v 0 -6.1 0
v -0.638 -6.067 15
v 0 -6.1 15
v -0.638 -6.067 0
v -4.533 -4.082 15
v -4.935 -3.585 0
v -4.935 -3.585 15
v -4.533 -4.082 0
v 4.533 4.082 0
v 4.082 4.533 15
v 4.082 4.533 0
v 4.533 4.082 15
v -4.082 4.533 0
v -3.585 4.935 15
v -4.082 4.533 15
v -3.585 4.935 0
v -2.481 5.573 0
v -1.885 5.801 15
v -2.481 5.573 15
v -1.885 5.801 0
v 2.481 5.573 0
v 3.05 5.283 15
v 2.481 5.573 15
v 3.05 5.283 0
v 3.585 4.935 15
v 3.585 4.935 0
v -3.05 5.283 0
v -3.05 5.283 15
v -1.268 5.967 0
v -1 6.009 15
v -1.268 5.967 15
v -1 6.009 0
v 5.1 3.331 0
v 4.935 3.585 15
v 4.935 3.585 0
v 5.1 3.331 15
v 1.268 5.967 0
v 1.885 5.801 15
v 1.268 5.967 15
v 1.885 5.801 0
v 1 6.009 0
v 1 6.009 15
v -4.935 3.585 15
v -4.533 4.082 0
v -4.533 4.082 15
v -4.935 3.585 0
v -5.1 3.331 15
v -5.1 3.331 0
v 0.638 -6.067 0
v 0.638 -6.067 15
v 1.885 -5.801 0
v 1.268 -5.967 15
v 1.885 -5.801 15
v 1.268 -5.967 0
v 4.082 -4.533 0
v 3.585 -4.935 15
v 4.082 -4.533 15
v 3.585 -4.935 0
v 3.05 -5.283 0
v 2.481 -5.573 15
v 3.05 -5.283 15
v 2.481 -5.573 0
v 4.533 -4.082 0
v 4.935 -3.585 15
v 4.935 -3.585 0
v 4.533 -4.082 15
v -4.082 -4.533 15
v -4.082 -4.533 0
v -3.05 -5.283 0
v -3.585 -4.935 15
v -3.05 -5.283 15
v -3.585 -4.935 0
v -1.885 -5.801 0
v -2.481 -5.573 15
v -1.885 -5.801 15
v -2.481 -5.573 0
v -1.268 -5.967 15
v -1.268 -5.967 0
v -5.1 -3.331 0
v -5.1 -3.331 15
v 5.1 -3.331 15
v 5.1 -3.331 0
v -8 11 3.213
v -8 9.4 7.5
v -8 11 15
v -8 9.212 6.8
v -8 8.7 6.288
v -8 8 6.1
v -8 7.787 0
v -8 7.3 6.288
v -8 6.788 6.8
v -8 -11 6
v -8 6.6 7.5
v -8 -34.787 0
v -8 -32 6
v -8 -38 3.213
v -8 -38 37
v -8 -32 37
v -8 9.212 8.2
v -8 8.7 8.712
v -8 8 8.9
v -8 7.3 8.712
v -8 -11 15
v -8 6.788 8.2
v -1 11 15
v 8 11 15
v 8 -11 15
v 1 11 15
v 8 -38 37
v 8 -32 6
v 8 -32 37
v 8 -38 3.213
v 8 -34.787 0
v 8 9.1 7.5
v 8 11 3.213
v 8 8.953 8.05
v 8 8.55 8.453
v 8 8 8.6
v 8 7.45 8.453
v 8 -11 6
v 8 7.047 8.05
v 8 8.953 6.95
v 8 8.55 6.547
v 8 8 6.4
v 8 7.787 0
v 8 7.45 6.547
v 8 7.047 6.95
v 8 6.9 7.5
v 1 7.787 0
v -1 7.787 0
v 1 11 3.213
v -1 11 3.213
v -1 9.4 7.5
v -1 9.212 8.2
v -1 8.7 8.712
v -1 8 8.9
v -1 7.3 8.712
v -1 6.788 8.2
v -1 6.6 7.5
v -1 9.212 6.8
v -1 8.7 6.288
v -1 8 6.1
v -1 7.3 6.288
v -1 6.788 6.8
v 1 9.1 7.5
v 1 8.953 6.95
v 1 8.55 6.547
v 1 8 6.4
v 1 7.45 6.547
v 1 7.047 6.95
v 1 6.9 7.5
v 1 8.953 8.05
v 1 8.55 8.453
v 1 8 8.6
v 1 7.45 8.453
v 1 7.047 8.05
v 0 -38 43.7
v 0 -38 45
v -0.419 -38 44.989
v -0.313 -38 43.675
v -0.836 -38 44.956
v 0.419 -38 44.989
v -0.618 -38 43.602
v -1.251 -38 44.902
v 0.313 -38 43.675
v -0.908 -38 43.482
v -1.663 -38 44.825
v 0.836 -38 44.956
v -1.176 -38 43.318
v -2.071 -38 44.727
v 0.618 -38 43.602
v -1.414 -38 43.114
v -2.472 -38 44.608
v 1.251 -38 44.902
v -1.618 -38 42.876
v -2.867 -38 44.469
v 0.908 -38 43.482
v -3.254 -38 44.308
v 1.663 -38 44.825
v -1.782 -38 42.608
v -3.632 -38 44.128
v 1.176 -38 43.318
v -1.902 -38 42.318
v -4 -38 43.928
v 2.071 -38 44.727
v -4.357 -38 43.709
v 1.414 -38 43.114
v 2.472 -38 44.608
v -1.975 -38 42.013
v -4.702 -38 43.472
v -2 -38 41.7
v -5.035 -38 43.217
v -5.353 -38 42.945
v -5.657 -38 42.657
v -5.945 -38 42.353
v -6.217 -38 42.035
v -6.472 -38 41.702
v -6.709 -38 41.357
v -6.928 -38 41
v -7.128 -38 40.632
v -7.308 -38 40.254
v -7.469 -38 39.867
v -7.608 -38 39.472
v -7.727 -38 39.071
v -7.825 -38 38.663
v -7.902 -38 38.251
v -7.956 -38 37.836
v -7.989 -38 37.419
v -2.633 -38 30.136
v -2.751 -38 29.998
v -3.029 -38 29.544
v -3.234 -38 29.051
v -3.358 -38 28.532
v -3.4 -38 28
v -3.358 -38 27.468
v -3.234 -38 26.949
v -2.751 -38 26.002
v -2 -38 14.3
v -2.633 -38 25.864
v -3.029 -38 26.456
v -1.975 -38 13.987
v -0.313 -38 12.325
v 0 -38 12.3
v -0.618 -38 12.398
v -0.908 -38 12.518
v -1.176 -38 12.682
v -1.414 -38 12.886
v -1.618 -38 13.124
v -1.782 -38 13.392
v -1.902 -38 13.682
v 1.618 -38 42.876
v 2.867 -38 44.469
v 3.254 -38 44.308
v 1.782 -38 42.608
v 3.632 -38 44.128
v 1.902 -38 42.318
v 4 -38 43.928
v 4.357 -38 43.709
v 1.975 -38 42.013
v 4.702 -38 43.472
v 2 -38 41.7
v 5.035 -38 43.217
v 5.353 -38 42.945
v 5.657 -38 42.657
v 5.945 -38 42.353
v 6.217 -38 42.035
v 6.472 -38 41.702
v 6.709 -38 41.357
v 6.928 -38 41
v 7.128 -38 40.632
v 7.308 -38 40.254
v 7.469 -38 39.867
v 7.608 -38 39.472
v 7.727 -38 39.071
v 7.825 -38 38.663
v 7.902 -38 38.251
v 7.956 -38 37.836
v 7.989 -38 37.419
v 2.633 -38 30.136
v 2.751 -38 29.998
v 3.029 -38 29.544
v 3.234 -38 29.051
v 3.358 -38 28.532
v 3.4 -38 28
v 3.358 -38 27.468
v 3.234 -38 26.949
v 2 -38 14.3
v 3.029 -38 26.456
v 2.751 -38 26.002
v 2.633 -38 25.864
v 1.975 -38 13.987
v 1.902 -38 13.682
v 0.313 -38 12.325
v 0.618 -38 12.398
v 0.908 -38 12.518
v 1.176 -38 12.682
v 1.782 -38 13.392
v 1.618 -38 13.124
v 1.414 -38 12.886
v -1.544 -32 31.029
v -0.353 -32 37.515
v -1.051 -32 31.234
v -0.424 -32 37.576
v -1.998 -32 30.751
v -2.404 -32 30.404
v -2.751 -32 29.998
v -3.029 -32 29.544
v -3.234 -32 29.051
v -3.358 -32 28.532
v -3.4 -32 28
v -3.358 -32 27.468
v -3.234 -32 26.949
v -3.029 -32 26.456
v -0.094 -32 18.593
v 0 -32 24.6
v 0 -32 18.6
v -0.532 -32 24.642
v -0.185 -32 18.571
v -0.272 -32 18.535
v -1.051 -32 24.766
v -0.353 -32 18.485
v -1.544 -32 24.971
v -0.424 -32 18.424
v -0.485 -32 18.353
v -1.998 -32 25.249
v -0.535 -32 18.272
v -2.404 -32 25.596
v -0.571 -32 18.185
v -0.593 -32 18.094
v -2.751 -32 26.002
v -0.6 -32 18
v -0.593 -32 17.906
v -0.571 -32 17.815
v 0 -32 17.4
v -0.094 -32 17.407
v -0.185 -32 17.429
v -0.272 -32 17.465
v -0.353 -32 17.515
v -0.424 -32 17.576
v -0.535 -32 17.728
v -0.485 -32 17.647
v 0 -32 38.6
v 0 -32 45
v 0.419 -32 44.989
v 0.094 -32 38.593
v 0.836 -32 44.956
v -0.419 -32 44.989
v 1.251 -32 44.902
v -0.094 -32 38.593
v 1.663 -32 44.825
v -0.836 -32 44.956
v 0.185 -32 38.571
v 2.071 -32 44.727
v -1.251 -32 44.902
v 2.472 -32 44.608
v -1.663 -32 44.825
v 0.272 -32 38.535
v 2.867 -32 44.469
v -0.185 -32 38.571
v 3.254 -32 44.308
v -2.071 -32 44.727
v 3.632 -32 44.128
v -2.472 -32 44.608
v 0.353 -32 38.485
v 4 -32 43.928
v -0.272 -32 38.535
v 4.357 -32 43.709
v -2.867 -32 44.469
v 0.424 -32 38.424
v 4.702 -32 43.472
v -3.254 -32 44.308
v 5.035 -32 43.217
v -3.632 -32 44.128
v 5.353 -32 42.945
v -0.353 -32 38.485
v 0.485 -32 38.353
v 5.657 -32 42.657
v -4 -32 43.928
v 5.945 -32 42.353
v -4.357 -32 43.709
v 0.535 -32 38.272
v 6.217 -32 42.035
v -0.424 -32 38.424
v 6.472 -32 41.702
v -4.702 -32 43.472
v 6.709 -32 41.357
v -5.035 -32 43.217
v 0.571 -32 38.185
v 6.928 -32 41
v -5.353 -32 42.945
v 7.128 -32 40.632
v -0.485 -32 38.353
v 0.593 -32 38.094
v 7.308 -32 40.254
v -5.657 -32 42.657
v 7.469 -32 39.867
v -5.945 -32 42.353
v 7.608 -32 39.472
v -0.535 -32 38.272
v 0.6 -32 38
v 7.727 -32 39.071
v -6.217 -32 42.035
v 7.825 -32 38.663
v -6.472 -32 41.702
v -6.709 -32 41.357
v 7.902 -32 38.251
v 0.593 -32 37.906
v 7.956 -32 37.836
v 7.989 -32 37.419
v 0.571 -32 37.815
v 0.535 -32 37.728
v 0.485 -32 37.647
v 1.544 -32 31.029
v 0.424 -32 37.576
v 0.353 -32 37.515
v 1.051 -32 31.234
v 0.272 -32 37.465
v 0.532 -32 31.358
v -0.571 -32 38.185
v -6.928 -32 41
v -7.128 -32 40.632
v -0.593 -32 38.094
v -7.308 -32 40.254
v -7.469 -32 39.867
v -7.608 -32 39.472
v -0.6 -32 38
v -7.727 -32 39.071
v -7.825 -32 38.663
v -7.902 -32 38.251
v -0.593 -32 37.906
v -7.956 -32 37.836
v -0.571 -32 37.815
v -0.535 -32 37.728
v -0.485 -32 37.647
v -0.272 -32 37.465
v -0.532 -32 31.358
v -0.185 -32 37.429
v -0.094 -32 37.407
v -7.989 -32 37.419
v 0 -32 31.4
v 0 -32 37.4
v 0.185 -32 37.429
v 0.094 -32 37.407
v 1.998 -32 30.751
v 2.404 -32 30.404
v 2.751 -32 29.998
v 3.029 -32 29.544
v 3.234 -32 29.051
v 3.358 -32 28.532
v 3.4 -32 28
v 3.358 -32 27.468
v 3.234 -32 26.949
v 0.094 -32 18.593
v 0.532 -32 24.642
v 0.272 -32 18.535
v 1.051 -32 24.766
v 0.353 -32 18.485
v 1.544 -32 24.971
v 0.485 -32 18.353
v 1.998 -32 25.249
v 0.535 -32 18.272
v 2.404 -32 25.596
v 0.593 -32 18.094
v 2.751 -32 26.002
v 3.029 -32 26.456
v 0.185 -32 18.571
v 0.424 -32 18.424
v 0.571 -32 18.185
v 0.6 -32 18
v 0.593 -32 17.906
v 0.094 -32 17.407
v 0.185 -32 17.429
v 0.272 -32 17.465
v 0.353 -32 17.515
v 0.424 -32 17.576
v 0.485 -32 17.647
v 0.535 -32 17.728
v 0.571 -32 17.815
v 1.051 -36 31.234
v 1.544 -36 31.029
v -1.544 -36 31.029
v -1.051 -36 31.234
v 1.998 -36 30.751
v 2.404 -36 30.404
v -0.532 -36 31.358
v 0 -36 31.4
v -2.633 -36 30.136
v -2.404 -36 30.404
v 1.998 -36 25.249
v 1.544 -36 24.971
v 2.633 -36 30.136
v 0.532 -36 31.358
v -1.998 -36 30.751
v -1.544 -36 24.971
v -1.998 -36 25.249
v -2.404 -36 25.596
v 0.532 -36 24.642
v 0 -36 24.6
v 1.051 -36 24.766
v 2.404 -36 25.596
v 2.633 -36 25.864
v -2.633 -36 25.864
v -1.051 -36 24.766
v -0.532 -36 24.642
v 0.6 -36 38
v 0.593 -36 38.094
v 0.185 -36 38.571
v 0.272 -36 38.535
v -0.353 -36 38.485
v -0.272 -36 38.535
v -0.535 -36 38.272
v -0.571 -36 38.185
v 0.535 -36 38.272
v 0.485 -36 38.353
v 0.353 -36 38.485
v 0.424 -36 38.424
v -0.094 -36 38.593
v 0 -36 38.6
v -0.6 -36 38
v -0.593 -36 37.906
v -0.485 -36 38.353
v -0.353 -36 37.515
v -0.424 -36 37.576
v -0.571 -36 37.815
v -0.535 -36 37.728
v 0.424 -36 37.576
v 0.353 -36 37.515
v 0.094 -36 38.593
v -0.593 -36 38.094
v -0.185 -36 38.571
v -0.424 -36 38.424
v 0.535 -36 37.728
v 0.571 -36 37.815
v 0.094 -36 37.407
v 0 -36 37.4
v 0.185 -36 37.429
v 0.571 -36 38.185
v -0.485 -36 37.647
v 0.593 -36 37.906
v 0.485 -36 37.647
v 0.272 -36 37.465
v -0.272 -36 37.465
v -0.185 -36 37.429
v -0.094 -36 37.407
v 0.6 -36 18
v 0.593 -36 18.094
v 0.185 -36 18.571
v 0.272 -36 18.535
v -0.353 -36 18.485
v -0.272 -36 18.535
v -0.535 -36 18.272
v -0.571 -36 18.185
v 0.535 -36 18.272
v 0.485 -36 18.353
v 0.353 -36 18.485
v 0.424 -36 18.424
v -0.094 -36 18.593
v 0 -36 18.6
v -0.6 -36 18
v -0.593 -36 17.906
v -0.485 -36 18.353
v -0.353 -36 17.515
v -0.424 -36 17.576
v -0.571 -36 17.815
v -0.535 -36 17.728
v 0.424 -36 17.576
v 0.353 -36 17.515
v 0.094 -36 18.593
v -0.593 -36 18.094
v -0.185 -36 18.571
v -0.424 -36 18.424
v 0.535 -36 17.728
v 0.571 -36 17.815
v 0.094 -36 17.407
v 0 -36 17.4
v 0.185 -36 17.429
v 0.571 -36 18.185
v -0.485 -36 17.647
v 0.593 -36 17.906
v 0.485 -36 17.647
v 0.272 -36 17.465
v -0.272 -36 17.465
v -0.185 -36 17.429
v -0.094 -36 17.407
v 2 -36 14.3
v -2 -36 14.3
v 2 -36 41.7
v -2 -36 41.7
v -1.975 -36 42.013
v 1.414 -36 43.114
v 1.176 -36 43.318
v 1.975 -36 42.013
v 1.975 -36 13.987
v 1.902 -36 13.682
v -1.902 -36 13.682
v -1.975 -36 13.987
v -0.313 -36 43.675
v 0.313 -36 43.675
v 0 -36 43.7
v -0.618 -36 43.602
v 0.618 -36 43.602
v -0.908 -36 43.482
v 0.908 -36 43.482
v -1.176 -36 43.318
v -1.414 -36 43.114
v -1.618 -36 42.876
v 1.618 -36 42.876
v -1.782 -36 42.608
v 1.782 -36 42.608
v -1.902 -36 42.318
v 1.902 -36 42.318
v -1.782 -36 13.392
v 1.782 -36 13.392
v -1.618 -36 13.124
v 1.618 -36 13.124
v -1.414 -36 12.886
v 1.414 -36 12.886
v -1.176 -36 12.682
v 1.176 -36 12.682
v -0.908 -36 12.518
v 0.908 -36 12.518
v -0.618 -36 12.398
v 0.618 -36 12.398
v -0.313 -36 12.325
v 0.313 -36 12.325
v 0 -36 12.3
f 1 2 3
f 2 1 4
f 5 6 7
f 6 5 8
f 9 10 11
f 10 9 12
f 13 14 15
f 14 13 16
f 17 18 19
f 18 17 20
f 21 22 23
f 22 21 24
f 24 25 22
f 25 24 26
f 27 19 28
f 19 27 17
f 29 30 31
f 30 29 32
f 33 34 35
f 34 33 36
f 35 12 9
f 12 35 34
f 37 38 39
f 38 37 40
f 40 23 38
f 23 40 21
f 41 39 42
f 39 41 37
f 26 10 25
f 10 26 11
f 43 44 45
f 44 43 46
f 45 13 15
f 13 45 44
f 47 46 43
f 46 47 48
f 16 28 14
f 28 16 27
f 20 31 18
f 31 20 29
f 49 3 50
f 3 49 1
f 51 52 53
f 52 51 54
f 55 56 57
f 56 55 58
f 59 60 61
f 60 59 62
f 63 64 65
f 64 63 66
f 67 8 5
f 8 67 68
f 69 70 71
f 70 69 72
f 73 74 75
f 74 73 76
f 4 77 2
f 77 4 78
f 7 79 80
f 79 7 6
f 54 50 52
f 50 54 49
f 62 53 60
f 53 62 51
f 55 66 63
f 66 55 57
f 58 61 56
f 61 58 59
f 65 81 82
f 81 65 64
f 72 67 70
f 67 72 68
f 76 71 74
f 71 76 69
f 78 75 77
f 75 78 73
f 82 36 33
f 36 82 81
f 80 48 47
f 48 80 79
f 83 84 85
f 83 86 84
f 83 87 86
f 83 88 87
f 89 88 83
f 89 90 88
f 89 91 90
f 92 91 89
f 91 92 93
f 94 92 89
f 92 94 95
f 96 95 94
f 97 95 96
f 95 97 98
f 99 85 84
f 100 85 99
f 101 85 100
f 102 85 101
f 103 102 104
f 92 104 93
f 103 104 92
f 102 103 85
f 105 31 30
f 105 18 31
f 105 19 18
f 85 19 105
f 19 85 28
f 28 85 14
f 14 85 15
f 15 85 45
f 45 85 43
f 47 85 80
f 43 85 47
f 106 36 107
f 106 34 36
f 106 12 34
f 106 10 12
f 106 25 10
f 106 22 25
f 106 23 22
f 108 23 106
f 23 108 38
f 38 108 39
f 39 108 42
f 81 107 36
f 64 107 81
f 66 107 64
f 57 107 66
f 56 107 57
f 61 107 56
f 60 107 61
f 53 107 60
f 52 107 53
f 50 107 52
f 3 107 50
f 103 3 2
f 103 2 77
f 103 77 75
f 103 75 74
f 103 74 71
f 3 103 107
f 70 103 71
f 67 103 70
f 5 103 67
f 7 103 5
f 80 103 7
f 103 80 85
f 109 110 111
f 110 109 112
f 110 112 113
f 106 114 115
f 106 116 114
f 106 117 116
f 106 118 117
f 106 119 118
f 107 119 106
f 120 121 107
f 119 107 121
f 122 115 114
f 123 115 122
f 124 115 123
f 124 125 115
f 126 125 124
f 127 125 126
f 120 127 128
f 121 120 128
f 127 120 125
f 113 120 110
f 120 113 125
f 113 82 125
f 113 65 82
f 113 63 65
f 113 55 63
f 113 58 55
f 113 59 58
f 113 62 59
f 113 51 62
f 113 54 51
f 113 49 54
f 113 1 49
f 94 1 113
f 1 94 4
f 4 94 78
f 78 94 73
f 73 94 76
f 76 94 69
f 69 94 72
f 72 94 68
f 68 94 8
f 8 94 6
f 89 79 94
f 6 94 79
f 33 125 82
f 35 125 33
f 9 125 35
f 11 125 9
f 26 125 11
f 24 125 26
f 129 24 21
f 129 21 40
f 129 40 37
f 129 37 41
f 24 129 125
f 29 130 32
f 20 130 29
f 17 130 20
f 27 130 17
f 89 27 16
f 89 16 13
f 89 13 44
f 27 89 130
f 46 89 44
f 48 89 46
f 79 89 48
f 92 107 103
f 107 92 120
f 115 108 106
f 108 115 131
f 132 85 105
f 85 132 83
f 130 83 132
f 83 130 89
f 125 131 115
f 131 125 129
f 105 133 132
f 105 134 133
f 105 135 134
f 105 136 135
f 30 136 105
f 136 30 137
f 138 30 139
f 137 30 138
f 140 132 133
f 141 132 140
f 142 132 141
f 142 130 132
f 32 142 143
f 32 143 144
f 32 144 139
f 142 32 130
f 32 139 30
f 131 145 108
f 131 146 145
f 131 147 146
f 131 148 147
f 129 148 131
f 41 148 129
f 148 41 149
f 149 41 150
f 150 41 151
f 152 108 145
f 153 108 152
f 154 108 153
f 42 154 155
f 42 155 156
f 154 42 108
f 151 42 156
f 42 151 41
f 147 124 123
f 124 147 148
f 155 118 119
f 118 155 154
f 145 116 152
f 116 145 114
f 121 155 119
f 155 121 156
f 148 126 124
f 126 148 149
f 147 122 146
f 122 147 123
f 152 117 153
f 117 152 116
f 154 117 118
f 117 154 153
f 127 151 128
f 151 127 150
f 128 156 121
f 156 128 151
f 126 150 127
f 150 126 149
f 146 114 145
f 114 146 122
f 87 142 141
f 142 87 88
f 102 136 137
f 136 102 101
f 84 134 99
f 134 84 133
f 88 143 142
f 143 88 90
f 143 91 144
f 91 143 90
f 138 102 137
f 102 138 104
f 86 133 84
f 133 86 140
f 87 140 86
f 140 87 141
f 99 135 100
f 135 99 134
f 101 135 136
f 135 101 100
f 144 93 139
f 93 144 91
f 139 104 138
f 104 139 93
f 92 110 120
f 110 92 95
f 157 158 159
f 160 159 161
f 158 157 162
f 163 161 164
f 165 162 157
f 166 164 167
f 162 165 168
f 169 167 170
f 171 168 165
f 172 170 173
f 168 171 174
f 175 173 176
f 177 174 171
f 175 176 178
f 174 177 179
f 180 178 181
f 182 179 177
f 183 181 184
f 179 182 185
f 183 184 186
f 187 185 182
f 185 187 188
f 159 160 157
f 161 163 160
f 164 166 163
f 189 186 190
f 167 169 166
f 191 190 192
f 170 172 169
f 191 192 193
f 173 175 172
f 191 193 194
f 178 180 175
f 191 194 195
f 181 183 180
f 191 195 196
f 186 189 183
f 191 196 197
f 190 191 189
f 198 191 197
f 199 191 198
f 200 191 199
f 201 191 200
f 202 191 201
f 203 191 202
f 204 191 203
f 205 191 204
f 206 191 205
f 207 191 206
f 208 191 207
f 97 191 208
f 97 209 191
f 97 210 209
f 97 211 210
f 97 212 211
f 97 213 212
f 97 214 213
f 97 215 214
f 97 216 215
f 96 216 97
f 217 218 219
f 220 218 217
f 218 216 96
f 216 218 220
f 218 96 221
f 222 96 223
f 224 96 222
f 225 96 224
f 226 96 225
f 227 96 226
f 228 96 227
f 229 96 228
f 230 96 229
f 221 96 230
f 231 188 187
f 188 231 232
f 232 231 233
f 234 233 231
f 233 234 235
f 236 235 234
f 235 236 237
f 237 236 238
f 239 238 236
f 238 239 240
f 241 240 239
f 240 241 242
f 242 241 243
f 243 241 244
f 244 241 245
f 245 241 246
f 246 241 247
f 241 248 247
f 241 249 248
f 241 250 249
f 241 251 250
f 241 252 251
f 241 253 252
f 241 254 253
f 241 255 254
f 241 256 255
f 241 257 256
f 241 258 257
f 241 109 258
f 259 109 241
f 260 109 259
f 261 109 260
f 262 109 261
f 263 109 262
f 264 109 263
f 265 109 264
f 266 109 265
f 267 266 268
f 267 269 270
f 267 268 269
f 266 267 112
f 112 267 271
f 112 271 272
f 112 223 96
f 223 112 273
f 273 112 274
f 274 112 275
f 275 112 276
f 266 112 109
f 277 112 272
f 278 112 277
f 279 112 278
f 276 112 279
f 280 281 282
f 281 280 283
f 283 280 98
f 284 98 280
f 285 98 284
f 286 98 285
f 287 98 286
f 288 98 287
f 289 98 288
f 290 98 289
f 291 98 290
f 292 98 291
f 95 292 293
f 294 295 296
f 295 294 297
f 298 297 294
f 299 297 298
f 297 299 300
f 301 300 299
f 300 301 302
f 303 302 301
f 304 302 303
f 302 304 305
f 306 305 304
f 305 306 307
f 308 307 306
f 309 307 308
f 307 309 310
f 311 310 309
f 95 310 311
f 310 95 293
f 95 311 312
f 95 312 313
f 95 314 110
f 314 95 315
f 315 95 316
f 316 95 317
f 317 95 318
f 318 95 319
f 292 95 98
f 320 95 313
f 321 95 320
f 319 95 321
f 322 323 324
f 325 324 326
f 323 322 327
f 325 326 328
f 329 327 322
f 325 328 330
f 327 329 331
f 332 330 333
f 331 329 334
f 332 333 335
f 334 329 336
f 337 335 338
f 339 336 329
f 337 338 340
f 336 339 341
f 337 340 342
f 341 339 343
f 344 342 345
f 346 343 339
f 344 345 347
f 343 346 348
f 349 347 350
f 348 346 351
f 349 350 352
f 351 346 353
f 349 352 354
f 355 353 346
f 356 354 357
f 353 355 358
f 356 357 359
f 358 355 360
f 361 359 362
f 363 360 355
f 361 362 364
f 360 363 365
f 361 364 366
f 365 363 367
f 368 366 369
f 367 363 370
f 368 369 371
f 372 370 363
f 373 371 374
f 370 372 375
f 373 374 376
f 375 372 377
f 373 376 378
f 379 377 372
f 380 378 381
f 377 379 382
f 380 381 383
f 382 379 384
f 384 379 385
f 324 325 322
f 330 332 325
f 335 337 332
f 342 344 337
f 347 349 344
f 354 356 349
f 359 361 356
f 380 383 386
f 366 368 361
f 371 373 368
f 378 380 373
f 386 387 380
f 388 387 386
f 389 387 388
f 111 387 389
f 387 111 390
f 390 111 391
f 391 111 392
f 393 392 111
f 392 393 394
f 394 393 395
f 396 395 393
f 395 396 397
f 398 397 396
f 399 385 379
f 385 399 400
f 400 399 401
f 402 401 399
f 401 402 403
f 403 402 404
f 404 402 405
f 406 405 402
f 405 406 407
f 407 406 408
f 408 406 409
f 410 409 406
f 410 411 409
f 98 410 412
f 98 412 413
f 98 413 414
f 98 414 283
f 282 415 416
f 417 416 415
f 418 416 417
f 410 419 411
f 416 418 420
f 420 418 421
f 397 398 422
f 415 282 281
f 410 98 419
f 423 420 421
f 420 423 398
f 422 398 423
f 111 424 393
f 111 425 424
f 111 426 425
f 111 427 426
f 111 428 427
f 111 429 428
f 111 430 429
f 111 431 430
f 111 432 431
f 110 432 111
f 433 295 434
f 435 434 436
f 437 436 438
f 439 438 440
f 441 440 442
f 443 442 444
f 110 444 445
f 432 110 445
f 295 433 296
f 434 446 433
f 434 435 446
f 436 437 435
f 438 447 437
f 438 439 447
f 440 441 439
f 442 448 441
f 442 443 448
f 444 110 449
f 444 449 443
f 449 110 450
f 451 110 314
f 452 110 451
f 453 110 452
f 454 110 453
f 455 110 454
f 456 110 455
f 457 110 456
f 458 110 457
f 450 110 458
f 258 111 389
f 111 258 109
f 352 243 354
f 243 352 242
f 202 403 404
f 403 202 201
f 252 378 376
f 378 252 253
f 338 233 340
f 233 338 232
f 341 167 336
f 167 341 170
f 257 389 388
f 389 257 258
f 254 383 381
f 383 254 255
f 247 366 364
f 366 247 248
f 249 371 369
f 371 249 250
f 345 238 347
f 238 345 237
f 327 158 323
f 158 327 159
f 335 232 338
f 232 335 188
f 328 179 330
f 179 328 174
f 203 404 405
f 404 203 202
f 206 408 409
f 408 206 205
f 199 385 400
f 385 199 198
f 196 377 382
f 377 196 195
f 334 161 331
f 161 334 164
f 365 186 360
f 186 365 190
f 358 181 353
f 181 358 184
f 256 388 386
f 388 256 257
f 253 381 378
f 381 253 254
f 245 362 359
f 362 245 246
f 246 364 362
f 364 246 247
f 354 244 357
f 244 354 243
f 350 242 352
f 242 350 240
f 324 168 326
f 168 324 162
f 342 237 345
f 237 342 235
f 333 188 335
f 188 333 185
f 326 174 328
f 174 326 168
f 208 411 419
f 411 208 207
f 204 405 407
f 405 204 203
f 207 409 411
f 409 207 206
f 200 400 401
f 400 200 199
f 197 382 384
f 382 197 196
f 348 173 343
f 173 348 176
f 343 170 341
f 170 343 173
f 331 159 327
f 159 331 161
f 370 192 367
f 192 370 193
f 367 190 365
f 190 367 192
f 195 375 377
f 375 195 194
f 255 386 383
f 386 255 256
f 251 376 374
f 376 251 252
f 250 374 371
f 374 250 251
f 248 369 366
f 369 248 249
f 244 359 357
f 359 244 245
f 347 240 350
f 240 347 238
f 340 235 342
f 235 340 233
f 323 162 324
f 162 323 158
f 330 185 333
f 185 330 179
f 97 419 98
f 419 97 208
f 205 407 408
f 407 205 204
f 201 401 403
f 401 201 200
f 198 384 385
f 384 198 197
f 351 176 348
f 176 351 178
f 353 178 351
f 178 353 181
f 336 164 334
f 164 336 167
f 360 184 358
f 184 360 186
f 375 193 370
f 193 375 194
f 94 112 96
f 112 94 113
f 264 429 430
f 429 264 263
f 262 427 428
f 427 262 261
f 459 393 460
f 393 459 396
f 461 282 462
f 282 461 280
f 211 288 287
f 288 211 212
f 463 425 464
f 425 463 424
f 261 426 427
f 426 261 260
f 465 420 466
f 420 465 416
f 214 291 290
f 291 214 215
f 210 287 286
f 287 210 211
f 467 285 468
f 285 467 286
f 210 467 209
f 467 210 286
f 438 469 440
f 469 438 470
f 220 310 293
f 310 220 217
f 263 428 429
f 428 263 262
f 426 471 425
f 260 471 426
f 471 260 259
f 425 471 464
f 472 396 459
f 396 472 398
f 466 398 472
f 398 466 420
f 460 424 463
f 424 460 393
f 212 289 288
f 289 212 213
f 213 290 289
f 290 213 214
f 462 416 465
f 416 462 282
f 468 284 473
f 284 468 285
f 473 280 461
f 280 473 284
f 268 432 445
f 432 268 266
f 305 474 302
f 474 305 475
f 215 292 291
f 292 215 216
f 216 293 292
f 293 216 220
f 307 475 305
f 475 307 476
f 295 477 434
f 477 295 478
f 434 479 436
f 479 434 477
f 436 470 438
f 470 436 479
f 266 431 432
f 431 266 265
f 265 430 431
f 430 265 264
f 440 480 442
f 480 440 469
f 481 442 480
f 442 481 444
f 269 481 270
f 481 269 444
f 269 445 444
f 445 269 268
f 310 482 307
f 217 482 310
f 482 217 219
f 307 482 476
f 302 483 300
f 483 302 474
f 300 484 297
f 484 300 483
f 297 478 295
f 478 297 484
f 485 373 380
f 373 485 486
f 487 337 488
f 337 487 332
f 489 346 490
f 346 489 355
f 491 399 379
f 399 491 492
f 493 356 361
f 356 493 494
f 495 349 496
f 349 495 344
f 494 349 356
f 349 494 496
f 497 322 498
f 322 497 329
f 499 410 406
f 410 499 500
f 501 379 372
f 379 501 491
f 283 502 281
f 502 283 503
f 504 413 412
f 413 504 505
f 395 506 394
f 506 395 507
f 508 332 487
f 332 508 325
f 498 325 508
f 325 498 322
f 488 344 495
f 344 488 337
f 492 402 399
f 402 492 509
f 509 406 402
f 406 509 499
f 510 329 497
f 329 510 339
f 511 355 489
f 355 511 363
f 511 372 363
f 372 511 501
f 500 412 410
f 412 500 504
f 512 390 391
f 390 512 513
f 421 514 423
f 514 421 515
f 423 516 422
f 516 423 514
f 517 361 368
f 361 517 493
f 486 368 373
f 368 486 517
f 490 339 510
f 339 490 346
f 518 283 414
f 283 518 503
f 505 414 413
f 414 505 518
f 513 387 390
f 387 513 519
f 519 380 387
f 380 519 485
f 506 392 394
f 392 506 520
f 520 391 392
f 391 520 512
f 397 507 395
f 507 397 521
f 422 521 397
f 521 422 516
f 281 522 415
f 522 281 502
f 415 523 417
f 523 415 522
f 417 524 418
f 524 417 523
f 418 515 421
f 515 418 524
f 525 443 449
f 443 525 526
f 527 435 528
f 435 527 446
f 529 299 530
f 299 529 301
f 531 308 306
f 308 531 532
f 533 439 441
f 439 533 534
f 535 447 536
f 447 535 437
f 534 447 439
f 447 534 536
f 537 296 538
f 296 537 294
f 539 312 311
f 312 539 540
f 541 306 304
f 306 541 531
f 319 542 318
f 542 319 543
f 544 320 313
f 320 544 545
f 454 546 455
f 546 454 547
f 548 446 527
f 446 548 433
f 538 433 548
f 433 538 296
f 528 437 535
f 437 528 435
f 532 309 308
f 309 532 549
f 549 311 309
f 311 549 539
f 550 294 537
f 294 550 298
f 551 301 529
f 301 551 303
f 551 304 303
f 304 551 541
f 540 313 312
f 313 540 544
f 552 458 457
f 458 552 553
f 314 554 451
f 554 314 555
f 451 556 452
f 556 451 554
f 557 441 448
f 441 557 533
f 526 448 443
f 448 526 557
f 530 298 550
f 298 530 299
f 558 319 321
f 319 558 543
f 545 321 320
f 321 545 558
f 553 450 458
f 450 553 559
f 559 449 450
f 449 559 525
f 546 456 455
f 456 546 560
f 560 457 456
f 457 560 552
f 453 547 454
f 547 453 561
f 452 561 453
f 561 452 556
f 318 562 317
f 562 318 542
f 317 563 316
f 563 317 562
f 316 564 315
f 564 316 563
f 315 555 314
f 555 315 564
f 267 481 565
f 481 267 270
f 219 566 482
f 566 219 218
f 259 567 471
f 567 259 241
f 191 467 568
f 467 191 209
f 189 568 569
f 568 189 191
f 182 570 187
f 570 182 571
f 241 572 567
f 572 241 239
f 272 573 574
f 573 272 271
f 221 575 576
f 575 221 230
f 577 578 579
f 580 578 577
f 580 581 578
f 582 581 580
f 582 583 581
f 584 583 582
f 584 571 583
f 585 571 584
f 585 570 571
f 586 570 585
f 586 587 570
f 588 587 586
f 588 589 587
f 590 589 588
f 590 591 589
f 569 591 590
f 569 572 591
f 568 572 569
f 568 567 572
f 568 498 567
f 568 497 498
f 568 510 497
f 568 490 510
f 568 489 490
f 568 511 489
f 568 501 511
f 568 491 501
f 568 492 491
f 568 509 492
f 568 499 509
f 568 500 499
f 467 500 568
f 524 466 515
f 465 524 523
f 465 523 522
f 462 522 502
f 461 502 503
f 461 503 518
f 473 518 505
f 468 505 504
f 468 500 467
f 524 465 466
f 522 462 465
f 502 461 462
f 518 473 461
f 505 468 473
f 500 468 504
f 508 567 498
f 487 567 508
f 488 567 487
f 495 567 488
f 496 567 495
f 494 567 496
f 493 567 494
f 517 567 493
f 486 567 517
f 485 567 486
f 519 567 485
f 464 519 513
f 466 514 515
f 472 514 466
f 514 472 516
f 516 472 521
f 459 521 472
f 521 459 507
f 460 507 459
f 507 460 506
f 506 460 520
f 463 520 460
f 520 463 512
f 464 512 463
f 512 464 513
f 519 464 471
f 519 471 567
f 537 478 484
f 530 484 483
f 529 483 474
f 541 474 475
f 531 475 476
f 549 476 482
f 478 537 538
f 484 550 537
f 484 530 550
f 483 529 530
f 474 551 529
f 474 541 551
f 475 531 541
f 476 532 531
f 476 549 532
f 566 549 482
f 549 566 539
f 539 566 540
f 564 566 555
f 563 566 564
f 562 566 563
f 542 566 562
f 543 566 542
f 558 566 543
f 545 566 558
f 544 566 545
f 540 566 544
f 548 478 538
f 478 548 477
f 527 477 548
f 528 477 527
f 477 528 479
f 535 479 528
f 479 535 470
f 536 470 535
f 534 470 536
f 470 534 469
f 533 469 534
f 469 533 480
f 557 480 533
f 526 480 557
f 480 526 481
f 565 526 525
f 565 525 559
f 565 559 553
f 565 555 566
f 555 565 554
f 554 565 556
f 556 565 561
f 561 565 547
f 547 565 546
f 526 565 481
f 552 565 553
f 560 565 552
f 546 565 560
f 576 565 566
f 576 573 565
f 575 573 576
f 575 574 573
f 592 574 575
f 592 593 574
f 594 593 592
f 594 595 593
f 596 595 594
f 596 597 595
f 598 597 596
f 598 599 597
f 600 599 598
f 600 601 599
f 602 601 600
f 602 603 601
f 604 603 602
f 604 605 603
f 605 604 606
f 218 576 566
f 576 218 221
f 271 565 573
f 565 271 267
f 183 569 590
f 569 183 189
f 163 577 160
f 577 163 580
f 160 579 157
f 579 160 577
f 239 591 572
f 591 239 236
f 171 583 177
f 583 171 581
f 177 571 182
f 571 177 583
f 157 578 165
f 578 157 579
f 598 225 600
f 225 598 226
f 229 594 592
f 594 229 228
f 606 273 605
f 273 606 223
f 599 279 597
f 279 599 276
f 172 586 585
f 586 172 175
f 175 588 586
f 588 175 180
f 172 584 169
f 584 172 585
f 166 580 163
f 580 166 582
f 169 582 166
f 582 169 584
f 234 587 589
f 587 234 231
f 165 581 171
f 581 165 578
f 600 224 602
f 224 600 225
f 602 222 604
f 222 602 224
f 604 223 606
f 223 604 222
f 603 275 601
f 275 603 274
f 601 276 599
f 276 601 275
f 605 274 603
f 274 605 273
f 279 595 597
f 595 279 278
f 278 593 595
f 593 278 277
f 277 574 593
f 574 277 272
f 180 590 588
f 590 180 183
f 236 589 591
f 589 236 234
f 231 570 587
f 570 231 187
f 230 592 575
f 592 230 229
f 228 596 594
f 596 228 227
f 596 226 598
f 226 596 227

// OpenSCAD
difference(){
translate([-8,-11,0])cube([16,22,15]);
difference(){
    translate([0,0,-1])cylinder(d=12.2,h=25,$fn=60);
    translate([6.1,0,-1])cube([2,16,40],center=true);
    translate([-6.1,0,-1])cube([2,16,40],center=true);
}
translate([0,14,-15])rotate([45,0,0])cube(30,center=true);
translate([-1,0,-1])cube([2,22,25]);
translate([-9,8,7.5])rotate([0,90,0])
cylinder(d=2.2,h=21,$fn=12);
translate([-9,8,7.5])rotate([0,90,0])
cylinder(d=2.8,h=10,$fn=12);
}

difference(){
union(){
translate([-8,-38,0])cube([16,31,6]);
translate([-8,-38,0])cube([16,6,37]);
translate([0,-32,37])rotate([90,0,0])
cylinder(d=16,h=6,$fn=120);
}
translate([0,-56,0])rotate([45,0,0])cube(30,center=true);
translate([0,-31,28])rotate([90,0,0])
cylinder(d=6.8,h=8,$fn=40);
translate([0,-31,38])rotate([90,0,0])
cylinder(d=1.2,h=8,$fn=40);
translate([0,-31,18])rotate([90,0,0])
cylinder(d=1.2,h=8,$fn=40);
translate([0,-36,28])rotate([90,0,0])
hull(){
cylinder(d=5.5,h=7,$fn=40);
translate([0,13.7,0])cylinder(d=4,h=7,$fn=40);
translate([0,-13.7,0])cylinder(d=4,h=7,$fn=40);
}  
}
